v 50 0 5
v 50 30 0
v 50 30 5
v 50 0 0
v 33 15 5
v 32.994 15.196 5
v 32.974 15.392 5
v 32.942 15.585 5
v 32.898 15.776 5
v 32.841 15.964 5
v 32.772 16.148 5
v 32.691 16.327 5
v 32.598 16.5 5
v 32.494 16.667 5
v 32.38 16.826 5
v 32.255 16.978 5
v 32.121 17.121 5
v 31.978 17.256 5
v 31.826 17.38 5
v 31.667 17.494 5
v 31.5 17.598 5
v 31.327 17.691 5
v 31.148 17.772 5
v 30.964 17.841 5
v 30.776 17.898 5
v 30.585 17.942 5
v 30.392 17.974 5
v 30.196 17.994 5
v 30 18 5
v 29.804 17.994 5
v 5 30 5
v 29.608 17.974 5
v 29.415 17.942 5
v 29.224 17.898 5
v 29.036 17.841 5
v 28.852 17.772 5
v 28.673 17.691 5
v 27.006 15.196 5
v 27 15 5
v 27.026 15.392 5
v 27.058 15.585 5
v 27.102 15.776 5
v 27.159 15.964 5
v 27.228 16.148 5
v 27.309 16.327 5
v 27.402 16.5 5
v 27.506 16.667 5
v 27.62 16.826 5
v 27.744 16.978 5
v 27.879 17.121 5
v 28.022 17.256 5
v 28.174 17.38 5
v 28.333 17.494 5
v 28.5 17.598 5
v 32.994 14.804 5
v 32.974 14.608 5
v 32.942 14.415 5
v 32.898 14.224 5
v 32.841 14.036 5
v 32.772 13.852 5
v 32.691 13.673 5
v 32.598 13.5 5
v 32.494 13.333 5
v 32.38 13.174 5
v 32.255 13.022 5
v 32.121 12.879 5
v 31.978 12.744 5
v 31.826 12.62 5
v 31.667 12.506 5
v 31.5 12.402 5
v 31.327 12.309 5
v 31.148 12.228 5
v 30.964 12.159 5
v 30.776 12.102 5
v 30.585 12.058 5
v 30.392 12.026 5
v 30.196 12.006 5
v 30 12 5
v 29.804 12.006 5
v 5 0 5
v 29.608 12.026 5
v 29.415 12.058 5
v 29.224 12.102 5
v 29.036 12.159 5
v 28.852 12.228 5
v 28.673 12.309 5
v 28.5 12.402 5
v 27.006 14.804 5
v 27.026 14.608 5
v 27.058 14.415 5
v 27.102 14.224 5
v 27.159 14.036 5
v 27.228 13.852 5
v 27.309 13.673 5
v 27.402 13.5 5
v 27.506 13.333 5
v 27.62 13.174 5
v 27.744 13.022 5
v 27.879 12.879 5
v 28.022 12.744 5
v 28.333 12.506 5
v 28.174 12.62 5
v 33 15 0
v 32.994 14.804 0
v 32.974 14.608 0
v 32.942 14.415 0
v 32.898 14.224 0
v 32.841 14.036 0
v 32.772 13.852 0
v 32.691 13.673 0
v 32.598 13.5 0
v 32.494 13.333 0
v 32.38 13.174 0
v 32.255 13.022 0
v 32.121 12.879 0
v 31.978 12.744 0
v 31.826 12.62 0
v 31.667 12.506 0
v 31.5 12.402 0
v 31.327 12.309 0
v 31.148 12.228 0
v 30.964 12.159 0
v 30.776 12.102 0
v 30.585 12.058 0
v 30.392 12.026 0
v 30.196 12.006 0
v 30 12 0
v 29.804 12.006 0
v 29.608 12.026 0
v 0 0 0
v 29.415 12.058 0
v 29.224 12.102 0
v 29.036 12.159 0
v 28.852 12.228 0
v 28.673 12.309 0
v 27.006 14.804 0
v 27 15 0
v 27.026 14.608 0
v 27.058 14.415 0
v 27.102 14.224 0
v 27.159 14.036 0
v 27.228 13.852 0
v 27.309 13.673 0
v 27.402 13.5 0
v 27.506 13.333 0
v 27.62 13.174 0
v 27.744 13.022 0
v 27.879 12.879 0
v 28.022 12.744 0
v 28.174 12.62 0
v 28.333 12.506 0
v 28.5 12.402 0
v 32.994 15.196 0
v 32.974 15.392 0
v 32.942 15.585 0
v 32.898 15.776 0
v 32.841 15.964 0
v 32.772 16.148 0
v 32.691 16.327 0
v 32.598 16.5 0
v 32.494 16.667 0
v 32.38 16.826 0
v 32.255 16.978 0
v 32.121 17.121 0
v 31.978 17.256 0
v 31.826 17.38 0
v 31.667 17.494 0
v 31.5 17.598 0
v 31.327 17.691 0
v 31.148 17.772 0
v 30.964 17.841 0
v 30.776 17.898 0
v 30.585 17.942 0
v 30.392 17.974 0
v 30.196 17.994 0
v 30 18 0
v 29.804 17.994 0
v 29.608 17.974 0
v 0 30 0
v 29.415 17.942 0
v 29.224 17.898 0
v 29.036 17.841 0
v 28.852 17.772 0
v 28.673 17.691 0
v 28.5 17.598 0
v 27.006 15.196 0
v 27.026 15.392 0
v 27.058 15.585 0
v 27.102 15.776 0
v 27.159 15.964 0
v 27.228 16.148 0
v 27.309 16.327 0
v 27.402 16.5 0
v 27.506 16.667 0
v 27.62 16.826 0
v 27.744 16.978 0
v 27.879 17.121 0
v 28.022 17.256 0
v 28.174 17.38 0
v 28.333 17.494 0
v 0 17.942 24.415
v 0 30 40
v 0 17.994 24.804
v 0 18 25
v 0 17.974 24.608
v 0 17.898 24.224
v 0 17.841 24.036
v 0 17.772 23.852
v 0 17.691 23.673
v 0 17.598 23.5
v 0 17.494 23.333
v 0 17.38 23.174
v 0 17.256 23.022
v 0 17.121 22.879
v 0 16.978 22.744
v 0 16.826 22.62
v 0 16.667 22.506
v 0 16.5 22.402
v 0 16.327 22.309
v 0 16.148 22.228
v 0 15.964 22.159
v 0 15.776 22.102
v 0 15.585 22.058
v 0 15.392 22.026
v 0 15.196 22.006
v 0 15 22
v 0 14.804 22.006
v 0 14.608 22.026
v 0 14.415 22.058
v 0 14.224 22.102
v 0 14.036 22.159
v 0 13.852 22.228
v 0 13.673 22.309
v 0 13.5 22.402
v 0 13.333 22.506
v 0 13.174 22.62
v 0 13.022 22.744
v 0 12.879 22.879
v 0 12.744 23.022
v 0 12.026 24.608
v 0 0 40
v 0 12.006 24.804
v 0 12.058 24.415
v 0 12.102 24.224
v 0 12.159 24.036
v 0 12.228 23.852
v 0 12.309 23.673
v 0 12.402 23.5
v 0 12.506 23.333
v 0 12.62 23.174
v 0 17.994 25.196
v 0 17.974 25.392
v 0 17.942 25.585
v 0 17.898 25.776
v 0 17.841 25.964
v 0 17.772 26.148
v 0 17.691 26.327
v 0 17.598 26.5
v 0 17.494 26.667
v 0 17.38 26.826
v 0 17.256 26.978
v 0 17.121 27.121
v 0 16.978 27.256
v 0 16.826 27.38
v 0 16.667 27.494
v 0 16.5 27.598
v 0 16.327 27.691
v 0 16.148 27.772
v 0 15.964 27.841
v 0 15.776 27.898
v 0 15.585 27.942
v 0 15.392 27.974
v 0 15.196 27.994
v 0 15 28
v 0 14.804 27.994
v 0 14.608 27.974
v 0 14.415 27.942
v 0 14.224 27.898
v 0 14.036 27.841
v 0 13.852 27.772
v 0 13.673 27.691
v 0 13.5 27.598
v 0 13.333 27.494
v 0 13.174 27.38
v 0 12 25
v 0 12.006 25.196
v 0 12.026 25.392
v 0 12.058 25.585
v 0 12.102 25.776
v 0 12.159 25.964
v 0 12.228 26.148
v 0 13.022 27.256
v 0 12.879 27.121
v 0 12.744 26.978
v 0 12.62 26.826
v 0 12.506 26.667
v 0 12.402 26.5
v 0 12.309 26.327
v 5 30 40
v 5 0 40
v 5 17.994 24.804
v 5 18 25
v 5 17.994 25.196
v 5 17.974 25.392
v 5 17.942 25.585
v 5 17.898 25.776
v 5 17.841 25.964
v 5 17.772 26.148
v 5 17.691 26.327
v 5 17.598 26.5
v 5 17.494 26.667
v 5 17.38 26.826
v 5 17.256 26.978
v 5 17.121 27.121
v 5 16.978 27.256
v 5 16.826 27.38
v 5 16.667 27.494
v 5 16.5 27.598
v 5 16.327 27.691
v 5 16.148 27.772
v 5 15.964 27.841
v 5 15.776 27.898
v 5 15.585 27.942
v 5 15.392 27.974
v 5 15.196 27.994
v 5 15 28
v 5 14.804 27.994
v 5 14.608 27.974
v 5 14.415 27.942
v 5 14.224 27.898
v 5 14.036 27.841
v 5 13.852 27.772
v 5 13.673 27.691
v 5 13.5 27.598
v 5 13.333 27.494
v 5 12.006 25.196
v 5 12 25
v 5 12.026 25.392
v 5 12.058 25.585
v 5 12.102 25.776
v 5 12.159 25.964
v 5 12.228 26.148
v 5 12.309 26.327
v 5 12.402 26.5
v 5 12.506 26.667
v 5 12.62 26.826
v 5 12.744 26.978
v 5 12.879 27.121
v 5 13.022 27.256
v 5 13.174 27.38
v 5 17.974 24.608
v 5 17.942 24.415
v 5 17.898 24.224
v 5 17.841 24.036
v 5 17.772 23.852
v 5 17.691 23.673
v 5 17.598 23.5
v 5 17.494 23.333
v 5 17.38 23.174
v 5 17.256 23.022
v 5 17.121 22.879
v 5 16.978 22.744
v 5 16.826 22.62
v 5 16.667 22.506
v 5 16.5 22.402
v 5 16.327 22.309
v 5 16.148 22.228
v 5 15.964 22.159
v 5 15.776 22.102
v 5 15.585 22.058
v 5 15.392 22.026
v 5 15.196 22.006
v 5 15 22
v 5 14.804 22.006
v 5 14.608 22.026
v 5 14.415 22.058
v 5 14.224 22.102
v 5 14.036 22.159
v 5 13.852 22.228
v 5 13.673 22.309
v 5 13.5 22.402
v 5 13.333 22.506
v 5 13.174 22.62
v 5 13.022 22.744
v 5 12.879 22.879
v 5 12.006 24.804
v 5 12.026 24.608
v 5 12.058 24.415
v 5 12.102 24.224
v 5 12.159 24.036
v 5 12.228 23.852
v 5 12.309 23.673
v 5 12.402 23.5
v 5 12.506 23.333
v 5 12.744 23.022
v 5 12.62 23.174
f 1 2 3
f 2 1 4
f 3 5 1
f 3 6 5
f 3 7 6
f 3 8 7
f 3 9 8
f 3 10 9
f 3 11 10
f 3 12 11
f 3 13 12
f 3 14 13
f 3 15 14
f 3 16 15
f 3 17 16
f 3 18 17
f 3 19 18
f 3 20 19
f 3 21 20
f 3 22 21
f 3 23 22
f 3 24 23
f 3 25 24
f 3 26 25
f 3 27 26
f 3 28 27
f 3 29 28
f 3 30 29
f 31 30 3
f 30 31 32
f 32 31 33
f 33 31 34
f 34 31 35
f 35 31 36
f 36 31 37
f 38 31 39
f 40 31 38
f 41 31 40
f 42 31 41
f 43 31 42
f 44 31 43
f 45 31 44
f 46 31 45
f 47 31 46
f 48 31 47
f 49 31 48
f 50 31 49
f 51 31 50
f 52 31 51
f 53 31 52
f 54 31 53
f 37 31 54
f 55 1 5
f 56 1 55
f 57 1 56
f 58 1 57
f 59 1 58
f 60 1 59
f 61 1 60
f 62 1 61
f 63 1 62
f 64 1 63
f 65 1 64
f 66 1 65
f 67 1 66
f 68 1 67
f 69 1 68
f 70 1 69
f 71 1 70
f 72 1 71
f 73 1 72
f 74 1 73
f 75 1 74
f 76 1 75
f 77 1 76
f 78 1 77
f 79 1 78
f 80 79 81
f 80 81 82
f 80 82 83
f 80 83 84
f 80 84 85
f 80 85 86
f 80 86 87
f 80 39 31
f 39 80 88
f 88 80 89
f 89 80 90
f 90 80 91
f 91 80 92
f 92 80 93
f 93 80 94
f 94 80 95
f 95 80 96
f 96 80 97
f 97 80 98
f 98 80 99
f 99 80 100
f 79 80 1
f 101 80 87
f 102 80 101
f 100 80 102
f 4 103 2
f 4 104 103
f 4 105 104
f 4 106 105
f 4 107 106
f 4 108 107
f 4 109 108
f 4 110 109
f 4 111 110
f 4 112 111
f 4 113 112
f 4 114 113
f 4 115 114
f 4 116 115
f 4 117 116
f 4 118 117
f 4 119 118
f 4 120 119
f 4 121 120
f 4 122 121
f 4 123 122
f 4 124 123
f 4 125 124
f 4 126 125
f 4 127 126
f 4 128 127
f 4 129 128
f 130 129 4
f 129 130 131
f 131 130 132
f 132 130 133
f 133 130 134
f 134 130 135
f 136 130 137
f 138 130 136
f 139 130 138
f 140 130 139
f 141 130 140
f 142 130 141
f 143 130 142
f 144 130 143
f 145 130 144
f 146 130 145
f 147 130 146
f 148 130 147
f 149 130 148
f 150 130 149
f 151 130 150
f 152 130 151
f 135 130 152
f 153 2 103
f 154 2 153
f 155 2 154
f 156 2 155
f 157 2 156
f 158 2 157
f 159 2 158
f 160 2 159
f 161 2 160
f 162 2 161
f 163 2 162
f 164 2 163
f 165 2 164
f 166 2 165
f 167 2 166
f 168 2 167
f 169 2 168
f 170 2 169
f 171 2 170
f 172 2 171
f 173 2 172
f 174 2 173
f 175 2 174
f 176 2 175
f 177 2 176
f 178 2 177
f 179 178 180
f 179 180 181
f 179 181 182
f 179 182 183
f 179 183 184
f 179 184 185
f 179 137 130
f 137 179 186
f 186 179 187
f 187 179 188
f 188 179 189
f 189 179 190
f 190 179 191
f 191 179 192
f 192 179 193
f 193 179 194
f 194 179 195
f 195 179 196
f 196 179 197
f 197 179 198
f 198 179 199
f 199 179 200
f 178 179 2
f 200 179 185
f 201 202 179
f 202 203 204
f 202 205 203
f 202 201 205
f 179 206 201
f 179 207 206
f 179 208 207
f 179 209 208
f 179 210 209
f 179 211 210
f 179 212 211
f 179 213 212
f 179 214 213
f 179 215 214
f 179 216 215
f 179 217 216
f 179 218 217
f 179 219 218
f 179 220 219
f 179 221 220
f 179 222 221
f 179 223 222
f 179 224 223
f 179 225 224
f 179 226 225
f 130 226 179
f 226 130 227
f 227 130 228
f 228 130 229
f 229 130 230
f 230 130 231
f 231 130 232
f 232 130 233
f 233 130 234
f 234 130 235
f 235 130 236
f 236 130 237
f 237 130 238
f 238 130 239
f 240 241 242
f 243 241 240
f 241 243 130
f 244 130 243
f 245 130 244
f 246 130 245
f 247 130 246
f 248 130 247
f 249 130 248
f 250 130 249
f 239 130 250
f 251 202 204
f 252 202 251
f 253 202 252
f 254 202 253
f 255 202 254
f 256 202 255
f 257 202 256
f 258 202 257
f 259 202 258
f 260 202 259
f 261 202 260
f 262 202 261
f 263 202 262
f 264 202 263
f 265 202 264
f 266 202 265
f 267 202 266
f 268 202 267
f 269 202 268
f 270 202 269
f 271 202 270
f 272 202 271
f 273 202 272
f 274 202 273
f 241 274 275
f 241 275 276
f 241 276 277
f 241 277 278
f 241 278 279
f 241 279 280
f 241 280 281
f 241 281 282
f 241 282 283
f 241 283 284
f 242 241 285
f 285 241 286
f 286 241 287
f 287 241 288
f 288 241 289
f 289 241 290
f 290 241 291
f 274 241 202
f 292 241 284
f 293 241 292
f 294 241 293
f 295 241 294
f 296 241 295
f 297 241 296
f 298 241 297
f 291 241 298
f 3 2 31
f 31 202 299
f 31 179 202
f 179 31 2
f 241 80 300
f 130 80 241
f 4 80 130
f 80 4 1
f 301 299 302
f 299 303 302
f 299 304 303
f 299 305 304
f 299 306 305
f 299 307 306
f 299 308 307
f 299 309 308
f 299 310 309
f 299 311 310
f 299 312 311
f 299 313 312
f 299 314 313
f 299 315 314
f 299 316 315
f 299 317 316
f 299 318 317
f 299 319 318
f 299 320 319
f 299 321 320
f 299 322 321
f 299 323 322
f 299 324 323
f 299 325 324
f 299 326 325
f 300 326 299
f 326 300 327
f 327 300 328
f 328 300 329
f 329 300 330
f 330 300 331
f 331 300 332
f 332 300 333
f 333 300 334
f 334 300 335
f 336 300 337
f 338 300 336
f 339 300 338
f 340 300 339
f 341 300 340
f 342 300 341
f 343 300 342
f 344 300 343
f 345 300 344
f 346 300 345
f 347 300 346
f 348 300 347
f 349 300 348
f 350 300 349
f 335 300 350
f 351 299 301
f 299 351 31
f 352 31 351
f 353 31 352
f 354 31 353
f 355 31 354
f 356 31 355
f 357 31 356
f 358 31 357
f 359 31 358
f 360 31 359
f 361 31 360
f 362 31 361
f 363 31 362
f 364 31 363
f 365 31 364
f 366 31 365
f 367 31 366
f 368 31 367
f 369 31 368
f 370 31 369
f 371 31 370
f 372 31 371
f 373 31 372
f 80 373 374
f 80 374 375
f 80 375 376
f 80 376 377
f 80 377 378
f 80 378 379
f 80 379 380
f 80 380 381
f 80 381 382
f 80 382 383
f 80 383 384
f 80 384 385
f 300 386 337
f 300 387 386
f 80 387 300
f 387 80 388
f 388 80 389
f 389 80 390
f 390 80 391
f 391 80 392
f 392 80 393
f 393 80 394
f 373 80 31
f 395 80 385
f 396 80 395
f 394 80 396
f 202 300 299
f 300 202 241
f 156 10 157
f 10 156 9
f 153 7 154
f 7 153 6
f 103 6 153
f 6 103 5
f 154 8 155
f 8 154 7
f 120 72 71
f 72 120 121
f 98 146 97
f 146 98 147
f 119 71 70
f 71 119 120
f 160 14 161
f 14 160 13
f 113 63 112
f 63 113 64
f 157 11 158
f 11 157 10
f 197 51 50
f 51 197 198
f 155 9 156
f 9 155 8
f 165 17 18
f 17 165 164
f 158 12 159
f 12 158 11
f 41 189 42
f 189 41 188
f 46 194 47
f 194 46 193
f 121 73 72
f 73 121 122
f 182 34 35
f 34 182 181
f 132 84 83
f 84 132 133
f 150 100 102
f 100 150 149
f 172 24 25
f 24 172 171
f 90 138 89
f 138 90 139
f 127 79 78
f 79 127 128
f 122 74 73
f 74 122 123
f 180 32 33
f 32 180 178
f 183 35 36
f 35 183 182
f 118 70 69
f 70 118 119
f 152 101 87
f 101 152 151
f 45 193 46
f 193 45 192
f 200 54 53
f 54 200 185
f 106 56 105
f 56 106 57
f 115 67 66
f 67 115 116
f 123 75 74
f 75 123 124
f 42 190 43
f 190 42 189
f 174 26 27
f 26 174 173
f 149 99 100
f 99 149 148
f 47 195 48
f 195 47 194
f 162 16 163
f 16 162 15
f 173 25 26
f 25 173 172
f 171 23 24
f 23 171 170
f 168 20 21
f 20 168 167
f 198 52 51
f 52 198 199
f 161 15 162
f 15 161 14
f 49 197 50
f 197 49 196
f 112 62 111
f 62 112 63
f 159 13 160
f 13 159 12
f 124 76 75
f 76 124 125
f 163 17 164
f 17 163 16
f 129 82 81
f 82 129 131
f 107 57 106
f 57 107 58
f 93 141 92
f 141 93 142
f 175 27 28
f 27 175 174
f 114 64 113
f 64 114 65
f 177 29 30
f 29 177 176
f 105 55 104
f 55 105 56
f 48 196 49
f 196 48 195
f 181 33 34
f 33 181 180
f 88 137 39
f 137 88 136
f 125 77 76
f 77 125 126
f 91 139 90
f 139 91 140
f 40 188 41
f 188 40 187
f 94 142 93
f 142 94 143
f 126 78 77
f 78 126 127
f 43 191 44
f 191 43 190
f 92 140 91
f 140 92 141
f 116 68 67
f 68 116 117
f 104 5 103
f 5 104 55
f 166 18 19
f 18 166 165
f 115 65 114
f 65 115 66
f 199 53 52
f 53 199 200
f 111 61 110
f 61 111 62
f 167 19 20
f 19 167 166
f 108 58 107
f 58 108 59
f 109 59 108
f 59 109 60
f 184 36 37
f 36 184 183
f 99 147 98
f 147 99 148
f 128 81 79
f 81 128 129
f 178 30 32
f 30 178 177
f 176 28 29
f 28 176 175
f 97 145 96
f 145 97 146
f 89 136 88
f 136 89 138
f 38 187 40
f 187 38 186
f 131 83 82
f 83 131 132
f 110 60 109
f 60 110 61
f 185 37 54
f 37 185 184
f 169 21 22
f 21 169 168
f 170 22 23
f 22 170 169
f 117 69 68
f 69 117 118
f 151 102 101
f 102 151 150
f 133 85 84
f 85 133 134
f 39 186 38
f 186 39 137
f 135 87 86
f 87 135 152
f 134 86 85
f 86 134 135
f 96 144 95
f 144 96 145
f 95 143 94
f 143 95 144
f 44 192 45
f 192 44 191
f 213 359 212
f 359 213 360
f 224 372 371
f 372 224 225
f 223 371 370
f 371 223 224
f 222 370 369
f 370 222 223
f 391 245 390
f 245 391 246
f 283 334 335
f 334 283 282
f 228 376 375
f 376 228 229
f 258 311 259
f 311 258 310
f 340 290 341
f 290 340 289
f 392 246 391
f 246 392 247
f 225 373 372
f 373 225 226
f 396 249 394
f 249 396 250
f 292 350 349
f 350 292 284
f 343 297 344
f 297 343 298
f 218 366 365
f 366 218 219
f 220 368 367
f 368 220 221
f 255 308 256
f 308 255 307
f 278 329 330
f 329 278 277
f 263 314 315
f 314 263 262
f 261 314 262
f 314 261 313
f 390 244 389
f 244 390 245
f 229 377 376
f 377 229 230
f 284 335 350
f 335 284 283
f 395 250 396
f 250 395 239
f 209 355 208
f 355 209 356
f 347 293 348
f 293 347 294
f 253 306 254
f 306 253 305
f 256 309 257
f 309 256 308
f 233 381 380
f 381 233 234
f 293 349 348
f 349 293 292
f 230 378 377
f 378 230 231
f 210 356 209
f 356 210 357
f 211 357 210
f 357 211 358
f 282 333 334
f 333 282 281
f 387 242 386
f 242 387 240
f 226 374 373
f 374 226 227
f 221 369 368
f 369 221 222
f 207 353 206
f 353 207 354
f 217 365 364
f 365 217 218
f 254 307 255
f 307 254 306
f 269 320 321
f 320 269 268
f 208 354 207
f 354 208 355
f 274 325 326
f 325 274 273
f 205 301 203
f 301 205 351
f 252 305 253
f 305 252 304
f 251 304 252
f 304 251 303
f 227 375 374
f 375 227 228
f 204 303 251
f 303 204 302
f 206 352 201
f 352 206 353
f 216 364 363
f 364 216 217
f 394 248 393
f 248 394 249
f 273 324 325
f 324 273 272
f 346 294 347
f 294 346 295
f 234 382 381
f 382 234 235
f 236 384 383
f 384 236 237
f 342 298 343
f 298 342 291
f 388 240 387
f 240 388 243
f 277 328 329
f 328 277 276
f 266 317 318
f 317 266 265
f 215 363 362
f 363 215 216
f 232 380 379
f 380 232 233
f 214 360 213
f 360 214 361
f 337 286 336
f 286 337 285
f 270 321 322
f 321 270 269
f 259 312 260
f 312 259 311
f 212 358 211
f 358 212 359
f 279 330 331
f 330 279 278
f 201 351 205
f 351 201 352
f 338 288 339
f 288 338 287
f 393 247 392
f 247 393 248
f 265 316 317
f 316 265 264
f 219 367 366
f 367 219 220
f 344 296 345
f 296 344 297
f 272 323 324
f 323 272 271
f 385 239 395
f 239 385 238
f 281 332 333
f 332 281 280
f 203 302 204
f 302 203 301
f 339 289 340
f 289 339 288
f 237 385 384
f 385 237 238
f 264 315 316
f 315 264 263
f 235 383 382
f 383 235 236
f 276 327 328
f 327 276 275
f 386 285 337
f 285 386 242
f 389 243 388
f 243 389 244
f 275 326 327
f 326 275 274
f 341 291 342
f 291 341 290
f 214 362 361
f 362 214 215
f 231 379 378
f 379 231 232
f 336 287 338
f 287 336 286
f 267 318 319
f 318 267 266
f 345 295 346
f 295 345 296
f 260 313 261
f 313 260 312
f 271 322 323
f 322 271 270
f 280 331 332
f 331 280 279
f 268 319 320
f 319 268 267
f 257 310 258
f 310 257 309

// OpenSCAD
// L bracket, 30 mm wide: a 50 x 30 x 5 mm base and a 5 mm thick upright 40 mm
// tall at one end. A 6 mm hole through the base, centred 30 mm from the
// upright's outer face, and one through the upright, centred 25 mm up.
difference() {
  union() {
    cube([50, 30, 5]);
    cube([5, 30, 40]);
  }
  translate([30, 15, -1]) cylinder(d = 6, h = 7, $fn = 96);
  translate([-1, 15, 25]) rotate([0, 90, 0]) cylinder(d = 6, h = 7, $fn = 96);
}
